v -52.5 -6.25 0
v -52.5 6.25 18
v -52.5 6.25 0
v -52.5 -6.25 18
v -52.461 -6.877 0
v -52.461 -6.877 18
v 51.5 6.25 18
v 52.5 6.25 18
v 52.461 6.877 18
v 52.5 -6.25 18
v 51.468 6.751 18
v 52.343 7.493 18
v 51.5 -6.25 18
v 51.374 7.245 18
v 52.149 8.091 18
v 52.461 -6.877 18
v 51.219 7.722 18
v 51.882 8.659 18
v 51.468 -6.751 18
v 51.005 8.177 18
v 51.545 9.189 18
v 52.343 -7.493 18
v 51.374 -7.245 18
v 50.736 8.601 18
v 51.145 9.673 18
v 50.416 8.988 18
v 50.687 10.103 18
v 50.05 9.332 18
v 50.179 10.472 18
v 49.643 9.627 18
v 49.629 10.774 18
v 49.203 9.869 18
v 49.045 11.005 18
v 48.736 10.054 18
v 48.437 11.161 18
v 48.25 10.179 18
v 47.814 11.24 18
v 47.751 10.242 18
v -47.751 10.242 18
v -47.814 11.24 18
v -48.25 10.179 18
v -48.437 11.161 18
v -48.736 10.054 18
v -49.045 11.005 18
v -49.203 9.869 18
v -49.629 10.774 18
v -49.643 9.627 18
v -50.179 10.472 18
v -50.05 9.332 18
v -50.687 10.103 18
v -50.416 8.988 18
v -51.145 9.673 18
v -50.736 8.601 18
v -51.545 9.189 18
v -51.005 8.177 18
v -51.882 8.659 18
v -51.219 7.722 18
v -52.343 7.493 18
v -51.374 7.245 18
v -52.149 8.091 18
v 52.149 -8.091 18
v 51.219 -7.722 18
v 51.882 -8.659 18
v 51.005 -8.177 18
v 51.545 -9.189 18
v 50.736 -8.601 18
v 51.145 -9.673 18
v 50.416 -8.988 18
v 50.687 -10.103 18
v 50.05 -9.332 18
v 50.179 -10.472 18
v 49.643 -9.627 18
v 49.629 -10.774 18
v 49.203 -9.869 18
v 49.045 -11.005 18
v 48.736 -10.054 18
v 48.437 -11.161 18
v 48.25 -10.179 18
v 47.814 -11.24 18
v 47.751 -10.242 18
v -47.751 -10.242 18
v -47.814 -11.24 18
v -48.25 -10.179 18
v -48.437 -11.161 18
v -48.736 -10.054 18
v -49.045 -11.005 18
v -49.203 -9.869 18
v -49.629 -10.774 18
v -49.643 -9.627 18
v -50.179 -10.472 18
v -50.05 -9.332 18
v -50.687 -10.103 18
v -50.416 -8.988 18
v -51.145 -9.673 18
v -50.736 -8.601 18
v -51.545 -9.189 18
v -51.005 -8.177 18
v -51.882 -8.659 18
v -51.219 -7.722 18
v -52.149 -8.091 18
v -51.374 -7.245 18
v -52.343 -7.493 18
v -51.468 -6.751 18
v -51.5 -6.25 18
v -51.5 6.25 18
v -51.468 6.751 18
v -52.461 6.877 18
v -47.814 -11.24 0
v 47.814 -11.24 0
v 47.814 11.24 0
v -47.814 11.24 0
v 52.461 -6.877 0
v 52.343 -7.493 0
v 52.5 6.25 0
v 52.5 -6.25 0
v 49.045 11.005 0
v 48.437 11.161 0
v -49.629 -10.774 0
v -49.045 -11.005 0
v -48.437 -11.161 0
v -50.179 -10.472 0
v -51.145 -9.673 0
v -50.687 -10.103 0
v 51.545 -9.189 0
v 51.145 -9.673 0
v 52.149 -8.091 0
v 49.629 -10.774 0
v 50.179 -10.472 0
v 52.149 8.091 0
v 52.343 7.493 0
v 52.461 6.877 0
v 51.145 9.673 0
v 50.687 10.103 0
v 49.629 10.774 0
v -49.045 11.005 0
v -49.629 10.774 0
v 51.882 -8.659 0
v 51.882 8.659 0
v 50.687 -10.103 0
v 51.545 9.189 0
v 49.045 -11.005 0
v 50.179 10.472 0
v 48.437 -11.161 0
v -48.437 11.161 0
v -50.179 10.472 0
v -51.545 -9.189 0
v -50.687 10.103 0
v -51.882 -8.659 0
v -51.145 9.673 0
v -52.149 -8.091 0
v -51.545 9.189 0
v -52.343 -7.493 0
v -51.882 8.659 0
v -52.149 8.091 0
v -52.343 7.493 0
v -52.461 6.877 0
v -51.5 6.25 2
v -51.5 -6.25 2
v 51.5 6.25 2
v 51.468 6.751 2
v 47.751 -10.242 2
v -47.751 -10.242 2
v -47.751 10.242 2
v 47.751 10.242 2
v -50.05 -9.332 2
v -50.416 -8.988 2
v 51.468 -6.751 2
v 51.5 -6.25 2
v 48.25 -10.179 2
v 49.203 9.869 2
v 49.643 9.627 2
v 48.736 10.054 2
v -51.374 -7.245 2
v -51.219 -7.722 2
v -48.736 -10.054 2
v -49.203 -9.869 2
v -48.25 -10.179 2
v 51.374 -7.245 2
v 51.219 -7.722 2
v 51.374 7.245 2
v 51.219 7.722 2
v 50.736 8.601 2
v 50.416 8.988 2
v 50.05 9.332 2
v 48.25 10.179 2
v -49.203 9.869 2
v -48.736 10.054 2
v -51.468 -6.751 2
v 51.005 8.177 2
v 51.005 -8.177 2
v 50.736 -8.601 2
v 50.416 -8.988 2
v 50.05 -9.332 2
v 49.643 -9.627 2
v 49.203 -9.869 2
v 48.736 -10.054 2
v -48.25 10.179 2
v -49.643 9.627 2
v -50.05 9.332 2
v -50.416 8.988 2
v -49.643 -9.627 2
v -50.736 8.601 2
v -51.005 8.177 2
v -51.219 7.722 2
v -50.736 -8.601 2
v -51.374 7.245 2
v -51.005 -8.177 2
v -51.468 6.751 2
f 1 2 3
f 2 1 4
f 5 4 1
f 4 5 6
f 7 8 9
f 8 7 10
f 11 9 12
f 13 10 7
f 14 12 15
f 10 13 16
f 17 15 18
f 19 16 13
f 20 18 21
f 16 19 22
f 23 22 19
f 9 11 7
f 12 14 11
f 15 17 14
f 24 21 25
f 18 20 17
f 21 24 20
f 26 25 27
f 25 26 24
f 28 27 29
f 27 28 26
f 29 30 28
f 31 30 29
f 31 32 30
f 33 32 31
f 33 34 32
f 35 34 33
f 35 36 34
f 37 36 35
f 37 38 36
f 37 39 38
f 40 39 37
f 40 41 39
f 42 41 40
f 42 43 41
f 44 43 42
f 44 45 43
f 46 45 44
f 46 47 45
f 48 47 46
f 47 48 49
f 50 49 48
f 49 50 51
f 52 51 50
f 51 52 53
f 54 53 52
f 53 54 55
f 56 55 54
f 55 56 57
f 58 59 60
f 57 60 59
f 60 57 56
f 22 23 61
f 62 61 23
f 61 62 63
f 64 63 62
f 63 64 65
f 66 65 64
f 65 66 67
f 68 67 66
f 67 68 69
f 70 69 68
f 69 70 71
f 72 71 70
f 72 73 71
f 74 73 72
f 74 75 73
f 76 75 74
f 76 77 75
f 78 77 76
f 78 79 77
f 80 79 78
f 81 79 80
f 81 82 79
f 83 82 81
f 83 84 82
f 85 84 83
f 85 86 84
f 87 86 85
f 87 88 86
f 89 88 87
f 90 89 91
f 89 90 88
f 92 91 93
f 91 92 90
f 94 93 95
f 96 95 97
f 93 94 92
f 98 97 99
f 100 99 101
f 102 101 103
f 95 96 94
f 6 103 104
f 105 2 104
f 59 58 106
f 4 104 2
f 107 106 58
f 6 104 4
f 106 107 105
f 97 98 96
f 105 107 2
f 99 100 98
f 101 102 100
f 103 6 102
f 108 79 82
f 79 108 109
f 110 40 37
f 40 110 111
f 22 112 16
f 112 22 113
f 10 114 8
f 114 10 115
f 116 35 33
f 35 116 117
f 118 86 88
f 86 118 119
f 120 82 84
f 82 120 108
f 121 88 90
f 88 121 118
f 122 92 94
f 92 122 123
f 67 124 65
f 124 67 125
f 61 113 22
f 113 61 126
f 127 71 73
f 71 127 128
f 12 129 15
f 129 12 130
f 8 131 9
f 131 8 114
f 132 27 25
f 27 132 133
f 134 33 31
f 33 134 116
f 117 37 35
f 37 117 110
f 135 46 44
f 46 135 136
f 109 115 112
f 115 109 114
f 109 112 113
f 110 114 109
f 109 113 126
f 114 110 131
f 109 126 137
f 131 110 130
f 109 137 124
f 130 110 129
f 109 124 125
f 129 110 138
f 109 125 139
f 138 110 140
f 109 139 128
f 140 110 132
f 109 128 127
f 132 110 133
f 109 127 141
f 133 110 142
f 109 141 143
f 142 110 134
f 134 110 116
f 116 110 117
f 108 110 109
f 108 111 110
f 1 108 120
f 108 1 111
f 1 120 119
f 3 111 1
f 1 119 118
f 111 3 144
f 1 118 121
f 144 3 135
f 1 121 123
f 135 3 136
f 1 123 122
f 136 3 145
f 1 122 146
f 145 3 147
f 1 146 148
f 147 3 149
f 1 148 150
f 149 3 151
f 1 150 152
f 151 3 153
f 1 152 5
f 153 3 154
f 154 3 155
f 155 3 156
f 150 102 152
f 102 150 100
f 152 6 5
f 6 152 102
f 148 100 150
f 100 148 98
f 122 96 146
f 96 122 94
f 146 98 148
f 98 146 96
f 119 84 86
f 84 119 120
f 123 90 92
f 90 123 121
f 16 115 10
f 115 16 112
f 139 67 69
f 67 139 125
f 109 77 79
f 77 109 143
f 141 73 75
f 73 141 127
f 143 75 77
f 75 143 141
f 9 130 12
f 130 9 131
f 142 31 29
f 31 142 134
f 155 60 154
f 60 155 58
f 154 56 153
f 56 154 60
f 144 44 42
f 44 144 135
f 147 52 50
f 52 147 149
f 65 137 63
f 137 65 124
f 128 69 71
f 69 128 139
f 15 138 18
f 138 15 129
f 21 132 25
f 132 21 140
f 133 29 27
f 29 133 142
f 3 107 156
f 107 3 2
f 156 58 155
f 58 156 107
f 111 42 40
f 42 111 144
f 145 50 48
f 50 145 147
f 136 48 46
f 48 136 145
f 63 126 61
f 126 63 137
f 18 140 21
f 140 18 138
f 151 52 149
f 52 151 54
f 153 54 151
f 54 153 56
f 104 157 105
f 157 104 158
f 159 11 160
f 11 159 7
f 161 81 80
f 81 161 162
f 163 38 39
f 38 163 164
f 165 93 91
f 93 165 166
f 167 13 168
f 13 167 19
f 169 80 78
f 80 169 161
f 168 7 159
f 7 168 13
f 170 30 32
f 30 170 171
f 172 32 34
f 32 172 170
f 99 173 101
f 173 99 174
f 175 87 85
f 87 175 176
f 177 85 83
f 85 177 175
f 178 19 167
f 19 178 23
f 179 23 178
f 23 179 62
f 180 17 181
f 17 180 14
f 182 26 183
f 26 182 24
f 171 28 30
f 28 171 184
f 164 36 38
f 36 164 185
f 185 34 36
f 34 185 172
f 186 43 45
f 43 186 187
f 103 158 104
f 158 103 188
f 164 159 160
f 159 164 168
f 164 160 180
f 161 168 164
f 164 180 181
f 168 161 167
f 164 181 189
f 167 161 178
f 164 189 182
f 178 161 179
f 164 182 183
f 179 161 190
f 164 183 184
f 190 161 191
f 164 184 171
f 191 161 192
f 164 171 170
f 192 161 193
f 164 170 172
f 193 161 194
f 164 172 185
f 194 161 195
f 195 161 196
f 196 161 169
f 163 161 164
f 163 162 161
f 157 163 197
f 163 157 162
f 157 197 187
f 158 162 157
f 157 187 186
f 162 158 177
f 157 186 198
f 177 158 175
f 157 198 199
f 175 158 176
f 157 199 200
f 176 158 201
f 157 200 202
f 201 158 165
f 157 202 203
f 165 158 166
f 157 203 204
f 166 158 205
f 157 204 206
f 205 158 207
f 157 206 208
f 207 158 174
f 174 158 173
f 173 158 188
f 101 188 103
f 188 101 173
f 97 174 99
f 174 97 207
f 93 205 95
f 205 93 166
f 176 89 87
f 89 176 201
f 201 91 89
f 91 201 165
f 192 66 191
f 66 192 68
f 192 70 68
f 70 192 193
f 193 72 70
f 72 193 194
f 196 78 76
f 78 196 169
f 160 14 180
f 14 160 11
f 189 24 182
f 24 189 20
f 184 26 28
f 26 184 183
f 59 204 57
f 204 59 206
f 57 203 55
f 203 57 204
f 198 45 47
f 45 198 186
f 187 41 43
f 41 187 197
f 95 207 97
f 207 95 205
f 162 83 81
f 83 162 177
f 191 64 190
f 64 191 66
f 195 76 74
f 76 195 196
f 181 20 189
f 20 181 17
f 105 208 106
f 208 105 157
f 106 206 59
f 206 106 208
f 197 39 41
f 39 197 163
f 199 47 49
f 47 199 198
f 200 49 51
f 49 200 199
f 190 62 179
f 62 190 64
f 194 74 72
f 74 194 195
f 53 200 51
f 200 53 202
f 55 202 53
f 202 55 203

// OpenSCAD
$fn = 50;


difference() {
	union() {
		hull() {
			translate(v = [-47.5000000000, 6.2500000000, 0]) {
				cylinder(h = 18, r = 5);
			}
			translate(v = [47.5000000000, 6.2500000000, 0]) {
				cylinder(h = 18, r = 5);
			}
			translate(v = [-47.5000000000, -6.2500000000, 0]) {
				cylinder(h = 18, r = 5);
			}
			translate(v = [47.5000000000, -6.2500000000, 0]) {
				cylinder(h = 18, r = 5);
			}
		}
	}
	union() {
		translate(v = [0, 0, 2]) {
			hull() {
				translate(v = [-47.5000000000, 6.2500000000, 0]) {
					cylinder(h = 16, r = 4);
				}
				translate(v = [47.5000000000, 6.2500000000, 0]) {
					cylinder(h = 16, r = 4);
				}
				translate(v = [-47.5000000000, -6.2500000000, 0]) {
					cylinder(h = 16, r = 4);
				}
				translate(v = [47.5000000000, -6.2500000000, 0]) {
					cylinder(h = 16, r = 4);
				}
			}
		}
	}
}
